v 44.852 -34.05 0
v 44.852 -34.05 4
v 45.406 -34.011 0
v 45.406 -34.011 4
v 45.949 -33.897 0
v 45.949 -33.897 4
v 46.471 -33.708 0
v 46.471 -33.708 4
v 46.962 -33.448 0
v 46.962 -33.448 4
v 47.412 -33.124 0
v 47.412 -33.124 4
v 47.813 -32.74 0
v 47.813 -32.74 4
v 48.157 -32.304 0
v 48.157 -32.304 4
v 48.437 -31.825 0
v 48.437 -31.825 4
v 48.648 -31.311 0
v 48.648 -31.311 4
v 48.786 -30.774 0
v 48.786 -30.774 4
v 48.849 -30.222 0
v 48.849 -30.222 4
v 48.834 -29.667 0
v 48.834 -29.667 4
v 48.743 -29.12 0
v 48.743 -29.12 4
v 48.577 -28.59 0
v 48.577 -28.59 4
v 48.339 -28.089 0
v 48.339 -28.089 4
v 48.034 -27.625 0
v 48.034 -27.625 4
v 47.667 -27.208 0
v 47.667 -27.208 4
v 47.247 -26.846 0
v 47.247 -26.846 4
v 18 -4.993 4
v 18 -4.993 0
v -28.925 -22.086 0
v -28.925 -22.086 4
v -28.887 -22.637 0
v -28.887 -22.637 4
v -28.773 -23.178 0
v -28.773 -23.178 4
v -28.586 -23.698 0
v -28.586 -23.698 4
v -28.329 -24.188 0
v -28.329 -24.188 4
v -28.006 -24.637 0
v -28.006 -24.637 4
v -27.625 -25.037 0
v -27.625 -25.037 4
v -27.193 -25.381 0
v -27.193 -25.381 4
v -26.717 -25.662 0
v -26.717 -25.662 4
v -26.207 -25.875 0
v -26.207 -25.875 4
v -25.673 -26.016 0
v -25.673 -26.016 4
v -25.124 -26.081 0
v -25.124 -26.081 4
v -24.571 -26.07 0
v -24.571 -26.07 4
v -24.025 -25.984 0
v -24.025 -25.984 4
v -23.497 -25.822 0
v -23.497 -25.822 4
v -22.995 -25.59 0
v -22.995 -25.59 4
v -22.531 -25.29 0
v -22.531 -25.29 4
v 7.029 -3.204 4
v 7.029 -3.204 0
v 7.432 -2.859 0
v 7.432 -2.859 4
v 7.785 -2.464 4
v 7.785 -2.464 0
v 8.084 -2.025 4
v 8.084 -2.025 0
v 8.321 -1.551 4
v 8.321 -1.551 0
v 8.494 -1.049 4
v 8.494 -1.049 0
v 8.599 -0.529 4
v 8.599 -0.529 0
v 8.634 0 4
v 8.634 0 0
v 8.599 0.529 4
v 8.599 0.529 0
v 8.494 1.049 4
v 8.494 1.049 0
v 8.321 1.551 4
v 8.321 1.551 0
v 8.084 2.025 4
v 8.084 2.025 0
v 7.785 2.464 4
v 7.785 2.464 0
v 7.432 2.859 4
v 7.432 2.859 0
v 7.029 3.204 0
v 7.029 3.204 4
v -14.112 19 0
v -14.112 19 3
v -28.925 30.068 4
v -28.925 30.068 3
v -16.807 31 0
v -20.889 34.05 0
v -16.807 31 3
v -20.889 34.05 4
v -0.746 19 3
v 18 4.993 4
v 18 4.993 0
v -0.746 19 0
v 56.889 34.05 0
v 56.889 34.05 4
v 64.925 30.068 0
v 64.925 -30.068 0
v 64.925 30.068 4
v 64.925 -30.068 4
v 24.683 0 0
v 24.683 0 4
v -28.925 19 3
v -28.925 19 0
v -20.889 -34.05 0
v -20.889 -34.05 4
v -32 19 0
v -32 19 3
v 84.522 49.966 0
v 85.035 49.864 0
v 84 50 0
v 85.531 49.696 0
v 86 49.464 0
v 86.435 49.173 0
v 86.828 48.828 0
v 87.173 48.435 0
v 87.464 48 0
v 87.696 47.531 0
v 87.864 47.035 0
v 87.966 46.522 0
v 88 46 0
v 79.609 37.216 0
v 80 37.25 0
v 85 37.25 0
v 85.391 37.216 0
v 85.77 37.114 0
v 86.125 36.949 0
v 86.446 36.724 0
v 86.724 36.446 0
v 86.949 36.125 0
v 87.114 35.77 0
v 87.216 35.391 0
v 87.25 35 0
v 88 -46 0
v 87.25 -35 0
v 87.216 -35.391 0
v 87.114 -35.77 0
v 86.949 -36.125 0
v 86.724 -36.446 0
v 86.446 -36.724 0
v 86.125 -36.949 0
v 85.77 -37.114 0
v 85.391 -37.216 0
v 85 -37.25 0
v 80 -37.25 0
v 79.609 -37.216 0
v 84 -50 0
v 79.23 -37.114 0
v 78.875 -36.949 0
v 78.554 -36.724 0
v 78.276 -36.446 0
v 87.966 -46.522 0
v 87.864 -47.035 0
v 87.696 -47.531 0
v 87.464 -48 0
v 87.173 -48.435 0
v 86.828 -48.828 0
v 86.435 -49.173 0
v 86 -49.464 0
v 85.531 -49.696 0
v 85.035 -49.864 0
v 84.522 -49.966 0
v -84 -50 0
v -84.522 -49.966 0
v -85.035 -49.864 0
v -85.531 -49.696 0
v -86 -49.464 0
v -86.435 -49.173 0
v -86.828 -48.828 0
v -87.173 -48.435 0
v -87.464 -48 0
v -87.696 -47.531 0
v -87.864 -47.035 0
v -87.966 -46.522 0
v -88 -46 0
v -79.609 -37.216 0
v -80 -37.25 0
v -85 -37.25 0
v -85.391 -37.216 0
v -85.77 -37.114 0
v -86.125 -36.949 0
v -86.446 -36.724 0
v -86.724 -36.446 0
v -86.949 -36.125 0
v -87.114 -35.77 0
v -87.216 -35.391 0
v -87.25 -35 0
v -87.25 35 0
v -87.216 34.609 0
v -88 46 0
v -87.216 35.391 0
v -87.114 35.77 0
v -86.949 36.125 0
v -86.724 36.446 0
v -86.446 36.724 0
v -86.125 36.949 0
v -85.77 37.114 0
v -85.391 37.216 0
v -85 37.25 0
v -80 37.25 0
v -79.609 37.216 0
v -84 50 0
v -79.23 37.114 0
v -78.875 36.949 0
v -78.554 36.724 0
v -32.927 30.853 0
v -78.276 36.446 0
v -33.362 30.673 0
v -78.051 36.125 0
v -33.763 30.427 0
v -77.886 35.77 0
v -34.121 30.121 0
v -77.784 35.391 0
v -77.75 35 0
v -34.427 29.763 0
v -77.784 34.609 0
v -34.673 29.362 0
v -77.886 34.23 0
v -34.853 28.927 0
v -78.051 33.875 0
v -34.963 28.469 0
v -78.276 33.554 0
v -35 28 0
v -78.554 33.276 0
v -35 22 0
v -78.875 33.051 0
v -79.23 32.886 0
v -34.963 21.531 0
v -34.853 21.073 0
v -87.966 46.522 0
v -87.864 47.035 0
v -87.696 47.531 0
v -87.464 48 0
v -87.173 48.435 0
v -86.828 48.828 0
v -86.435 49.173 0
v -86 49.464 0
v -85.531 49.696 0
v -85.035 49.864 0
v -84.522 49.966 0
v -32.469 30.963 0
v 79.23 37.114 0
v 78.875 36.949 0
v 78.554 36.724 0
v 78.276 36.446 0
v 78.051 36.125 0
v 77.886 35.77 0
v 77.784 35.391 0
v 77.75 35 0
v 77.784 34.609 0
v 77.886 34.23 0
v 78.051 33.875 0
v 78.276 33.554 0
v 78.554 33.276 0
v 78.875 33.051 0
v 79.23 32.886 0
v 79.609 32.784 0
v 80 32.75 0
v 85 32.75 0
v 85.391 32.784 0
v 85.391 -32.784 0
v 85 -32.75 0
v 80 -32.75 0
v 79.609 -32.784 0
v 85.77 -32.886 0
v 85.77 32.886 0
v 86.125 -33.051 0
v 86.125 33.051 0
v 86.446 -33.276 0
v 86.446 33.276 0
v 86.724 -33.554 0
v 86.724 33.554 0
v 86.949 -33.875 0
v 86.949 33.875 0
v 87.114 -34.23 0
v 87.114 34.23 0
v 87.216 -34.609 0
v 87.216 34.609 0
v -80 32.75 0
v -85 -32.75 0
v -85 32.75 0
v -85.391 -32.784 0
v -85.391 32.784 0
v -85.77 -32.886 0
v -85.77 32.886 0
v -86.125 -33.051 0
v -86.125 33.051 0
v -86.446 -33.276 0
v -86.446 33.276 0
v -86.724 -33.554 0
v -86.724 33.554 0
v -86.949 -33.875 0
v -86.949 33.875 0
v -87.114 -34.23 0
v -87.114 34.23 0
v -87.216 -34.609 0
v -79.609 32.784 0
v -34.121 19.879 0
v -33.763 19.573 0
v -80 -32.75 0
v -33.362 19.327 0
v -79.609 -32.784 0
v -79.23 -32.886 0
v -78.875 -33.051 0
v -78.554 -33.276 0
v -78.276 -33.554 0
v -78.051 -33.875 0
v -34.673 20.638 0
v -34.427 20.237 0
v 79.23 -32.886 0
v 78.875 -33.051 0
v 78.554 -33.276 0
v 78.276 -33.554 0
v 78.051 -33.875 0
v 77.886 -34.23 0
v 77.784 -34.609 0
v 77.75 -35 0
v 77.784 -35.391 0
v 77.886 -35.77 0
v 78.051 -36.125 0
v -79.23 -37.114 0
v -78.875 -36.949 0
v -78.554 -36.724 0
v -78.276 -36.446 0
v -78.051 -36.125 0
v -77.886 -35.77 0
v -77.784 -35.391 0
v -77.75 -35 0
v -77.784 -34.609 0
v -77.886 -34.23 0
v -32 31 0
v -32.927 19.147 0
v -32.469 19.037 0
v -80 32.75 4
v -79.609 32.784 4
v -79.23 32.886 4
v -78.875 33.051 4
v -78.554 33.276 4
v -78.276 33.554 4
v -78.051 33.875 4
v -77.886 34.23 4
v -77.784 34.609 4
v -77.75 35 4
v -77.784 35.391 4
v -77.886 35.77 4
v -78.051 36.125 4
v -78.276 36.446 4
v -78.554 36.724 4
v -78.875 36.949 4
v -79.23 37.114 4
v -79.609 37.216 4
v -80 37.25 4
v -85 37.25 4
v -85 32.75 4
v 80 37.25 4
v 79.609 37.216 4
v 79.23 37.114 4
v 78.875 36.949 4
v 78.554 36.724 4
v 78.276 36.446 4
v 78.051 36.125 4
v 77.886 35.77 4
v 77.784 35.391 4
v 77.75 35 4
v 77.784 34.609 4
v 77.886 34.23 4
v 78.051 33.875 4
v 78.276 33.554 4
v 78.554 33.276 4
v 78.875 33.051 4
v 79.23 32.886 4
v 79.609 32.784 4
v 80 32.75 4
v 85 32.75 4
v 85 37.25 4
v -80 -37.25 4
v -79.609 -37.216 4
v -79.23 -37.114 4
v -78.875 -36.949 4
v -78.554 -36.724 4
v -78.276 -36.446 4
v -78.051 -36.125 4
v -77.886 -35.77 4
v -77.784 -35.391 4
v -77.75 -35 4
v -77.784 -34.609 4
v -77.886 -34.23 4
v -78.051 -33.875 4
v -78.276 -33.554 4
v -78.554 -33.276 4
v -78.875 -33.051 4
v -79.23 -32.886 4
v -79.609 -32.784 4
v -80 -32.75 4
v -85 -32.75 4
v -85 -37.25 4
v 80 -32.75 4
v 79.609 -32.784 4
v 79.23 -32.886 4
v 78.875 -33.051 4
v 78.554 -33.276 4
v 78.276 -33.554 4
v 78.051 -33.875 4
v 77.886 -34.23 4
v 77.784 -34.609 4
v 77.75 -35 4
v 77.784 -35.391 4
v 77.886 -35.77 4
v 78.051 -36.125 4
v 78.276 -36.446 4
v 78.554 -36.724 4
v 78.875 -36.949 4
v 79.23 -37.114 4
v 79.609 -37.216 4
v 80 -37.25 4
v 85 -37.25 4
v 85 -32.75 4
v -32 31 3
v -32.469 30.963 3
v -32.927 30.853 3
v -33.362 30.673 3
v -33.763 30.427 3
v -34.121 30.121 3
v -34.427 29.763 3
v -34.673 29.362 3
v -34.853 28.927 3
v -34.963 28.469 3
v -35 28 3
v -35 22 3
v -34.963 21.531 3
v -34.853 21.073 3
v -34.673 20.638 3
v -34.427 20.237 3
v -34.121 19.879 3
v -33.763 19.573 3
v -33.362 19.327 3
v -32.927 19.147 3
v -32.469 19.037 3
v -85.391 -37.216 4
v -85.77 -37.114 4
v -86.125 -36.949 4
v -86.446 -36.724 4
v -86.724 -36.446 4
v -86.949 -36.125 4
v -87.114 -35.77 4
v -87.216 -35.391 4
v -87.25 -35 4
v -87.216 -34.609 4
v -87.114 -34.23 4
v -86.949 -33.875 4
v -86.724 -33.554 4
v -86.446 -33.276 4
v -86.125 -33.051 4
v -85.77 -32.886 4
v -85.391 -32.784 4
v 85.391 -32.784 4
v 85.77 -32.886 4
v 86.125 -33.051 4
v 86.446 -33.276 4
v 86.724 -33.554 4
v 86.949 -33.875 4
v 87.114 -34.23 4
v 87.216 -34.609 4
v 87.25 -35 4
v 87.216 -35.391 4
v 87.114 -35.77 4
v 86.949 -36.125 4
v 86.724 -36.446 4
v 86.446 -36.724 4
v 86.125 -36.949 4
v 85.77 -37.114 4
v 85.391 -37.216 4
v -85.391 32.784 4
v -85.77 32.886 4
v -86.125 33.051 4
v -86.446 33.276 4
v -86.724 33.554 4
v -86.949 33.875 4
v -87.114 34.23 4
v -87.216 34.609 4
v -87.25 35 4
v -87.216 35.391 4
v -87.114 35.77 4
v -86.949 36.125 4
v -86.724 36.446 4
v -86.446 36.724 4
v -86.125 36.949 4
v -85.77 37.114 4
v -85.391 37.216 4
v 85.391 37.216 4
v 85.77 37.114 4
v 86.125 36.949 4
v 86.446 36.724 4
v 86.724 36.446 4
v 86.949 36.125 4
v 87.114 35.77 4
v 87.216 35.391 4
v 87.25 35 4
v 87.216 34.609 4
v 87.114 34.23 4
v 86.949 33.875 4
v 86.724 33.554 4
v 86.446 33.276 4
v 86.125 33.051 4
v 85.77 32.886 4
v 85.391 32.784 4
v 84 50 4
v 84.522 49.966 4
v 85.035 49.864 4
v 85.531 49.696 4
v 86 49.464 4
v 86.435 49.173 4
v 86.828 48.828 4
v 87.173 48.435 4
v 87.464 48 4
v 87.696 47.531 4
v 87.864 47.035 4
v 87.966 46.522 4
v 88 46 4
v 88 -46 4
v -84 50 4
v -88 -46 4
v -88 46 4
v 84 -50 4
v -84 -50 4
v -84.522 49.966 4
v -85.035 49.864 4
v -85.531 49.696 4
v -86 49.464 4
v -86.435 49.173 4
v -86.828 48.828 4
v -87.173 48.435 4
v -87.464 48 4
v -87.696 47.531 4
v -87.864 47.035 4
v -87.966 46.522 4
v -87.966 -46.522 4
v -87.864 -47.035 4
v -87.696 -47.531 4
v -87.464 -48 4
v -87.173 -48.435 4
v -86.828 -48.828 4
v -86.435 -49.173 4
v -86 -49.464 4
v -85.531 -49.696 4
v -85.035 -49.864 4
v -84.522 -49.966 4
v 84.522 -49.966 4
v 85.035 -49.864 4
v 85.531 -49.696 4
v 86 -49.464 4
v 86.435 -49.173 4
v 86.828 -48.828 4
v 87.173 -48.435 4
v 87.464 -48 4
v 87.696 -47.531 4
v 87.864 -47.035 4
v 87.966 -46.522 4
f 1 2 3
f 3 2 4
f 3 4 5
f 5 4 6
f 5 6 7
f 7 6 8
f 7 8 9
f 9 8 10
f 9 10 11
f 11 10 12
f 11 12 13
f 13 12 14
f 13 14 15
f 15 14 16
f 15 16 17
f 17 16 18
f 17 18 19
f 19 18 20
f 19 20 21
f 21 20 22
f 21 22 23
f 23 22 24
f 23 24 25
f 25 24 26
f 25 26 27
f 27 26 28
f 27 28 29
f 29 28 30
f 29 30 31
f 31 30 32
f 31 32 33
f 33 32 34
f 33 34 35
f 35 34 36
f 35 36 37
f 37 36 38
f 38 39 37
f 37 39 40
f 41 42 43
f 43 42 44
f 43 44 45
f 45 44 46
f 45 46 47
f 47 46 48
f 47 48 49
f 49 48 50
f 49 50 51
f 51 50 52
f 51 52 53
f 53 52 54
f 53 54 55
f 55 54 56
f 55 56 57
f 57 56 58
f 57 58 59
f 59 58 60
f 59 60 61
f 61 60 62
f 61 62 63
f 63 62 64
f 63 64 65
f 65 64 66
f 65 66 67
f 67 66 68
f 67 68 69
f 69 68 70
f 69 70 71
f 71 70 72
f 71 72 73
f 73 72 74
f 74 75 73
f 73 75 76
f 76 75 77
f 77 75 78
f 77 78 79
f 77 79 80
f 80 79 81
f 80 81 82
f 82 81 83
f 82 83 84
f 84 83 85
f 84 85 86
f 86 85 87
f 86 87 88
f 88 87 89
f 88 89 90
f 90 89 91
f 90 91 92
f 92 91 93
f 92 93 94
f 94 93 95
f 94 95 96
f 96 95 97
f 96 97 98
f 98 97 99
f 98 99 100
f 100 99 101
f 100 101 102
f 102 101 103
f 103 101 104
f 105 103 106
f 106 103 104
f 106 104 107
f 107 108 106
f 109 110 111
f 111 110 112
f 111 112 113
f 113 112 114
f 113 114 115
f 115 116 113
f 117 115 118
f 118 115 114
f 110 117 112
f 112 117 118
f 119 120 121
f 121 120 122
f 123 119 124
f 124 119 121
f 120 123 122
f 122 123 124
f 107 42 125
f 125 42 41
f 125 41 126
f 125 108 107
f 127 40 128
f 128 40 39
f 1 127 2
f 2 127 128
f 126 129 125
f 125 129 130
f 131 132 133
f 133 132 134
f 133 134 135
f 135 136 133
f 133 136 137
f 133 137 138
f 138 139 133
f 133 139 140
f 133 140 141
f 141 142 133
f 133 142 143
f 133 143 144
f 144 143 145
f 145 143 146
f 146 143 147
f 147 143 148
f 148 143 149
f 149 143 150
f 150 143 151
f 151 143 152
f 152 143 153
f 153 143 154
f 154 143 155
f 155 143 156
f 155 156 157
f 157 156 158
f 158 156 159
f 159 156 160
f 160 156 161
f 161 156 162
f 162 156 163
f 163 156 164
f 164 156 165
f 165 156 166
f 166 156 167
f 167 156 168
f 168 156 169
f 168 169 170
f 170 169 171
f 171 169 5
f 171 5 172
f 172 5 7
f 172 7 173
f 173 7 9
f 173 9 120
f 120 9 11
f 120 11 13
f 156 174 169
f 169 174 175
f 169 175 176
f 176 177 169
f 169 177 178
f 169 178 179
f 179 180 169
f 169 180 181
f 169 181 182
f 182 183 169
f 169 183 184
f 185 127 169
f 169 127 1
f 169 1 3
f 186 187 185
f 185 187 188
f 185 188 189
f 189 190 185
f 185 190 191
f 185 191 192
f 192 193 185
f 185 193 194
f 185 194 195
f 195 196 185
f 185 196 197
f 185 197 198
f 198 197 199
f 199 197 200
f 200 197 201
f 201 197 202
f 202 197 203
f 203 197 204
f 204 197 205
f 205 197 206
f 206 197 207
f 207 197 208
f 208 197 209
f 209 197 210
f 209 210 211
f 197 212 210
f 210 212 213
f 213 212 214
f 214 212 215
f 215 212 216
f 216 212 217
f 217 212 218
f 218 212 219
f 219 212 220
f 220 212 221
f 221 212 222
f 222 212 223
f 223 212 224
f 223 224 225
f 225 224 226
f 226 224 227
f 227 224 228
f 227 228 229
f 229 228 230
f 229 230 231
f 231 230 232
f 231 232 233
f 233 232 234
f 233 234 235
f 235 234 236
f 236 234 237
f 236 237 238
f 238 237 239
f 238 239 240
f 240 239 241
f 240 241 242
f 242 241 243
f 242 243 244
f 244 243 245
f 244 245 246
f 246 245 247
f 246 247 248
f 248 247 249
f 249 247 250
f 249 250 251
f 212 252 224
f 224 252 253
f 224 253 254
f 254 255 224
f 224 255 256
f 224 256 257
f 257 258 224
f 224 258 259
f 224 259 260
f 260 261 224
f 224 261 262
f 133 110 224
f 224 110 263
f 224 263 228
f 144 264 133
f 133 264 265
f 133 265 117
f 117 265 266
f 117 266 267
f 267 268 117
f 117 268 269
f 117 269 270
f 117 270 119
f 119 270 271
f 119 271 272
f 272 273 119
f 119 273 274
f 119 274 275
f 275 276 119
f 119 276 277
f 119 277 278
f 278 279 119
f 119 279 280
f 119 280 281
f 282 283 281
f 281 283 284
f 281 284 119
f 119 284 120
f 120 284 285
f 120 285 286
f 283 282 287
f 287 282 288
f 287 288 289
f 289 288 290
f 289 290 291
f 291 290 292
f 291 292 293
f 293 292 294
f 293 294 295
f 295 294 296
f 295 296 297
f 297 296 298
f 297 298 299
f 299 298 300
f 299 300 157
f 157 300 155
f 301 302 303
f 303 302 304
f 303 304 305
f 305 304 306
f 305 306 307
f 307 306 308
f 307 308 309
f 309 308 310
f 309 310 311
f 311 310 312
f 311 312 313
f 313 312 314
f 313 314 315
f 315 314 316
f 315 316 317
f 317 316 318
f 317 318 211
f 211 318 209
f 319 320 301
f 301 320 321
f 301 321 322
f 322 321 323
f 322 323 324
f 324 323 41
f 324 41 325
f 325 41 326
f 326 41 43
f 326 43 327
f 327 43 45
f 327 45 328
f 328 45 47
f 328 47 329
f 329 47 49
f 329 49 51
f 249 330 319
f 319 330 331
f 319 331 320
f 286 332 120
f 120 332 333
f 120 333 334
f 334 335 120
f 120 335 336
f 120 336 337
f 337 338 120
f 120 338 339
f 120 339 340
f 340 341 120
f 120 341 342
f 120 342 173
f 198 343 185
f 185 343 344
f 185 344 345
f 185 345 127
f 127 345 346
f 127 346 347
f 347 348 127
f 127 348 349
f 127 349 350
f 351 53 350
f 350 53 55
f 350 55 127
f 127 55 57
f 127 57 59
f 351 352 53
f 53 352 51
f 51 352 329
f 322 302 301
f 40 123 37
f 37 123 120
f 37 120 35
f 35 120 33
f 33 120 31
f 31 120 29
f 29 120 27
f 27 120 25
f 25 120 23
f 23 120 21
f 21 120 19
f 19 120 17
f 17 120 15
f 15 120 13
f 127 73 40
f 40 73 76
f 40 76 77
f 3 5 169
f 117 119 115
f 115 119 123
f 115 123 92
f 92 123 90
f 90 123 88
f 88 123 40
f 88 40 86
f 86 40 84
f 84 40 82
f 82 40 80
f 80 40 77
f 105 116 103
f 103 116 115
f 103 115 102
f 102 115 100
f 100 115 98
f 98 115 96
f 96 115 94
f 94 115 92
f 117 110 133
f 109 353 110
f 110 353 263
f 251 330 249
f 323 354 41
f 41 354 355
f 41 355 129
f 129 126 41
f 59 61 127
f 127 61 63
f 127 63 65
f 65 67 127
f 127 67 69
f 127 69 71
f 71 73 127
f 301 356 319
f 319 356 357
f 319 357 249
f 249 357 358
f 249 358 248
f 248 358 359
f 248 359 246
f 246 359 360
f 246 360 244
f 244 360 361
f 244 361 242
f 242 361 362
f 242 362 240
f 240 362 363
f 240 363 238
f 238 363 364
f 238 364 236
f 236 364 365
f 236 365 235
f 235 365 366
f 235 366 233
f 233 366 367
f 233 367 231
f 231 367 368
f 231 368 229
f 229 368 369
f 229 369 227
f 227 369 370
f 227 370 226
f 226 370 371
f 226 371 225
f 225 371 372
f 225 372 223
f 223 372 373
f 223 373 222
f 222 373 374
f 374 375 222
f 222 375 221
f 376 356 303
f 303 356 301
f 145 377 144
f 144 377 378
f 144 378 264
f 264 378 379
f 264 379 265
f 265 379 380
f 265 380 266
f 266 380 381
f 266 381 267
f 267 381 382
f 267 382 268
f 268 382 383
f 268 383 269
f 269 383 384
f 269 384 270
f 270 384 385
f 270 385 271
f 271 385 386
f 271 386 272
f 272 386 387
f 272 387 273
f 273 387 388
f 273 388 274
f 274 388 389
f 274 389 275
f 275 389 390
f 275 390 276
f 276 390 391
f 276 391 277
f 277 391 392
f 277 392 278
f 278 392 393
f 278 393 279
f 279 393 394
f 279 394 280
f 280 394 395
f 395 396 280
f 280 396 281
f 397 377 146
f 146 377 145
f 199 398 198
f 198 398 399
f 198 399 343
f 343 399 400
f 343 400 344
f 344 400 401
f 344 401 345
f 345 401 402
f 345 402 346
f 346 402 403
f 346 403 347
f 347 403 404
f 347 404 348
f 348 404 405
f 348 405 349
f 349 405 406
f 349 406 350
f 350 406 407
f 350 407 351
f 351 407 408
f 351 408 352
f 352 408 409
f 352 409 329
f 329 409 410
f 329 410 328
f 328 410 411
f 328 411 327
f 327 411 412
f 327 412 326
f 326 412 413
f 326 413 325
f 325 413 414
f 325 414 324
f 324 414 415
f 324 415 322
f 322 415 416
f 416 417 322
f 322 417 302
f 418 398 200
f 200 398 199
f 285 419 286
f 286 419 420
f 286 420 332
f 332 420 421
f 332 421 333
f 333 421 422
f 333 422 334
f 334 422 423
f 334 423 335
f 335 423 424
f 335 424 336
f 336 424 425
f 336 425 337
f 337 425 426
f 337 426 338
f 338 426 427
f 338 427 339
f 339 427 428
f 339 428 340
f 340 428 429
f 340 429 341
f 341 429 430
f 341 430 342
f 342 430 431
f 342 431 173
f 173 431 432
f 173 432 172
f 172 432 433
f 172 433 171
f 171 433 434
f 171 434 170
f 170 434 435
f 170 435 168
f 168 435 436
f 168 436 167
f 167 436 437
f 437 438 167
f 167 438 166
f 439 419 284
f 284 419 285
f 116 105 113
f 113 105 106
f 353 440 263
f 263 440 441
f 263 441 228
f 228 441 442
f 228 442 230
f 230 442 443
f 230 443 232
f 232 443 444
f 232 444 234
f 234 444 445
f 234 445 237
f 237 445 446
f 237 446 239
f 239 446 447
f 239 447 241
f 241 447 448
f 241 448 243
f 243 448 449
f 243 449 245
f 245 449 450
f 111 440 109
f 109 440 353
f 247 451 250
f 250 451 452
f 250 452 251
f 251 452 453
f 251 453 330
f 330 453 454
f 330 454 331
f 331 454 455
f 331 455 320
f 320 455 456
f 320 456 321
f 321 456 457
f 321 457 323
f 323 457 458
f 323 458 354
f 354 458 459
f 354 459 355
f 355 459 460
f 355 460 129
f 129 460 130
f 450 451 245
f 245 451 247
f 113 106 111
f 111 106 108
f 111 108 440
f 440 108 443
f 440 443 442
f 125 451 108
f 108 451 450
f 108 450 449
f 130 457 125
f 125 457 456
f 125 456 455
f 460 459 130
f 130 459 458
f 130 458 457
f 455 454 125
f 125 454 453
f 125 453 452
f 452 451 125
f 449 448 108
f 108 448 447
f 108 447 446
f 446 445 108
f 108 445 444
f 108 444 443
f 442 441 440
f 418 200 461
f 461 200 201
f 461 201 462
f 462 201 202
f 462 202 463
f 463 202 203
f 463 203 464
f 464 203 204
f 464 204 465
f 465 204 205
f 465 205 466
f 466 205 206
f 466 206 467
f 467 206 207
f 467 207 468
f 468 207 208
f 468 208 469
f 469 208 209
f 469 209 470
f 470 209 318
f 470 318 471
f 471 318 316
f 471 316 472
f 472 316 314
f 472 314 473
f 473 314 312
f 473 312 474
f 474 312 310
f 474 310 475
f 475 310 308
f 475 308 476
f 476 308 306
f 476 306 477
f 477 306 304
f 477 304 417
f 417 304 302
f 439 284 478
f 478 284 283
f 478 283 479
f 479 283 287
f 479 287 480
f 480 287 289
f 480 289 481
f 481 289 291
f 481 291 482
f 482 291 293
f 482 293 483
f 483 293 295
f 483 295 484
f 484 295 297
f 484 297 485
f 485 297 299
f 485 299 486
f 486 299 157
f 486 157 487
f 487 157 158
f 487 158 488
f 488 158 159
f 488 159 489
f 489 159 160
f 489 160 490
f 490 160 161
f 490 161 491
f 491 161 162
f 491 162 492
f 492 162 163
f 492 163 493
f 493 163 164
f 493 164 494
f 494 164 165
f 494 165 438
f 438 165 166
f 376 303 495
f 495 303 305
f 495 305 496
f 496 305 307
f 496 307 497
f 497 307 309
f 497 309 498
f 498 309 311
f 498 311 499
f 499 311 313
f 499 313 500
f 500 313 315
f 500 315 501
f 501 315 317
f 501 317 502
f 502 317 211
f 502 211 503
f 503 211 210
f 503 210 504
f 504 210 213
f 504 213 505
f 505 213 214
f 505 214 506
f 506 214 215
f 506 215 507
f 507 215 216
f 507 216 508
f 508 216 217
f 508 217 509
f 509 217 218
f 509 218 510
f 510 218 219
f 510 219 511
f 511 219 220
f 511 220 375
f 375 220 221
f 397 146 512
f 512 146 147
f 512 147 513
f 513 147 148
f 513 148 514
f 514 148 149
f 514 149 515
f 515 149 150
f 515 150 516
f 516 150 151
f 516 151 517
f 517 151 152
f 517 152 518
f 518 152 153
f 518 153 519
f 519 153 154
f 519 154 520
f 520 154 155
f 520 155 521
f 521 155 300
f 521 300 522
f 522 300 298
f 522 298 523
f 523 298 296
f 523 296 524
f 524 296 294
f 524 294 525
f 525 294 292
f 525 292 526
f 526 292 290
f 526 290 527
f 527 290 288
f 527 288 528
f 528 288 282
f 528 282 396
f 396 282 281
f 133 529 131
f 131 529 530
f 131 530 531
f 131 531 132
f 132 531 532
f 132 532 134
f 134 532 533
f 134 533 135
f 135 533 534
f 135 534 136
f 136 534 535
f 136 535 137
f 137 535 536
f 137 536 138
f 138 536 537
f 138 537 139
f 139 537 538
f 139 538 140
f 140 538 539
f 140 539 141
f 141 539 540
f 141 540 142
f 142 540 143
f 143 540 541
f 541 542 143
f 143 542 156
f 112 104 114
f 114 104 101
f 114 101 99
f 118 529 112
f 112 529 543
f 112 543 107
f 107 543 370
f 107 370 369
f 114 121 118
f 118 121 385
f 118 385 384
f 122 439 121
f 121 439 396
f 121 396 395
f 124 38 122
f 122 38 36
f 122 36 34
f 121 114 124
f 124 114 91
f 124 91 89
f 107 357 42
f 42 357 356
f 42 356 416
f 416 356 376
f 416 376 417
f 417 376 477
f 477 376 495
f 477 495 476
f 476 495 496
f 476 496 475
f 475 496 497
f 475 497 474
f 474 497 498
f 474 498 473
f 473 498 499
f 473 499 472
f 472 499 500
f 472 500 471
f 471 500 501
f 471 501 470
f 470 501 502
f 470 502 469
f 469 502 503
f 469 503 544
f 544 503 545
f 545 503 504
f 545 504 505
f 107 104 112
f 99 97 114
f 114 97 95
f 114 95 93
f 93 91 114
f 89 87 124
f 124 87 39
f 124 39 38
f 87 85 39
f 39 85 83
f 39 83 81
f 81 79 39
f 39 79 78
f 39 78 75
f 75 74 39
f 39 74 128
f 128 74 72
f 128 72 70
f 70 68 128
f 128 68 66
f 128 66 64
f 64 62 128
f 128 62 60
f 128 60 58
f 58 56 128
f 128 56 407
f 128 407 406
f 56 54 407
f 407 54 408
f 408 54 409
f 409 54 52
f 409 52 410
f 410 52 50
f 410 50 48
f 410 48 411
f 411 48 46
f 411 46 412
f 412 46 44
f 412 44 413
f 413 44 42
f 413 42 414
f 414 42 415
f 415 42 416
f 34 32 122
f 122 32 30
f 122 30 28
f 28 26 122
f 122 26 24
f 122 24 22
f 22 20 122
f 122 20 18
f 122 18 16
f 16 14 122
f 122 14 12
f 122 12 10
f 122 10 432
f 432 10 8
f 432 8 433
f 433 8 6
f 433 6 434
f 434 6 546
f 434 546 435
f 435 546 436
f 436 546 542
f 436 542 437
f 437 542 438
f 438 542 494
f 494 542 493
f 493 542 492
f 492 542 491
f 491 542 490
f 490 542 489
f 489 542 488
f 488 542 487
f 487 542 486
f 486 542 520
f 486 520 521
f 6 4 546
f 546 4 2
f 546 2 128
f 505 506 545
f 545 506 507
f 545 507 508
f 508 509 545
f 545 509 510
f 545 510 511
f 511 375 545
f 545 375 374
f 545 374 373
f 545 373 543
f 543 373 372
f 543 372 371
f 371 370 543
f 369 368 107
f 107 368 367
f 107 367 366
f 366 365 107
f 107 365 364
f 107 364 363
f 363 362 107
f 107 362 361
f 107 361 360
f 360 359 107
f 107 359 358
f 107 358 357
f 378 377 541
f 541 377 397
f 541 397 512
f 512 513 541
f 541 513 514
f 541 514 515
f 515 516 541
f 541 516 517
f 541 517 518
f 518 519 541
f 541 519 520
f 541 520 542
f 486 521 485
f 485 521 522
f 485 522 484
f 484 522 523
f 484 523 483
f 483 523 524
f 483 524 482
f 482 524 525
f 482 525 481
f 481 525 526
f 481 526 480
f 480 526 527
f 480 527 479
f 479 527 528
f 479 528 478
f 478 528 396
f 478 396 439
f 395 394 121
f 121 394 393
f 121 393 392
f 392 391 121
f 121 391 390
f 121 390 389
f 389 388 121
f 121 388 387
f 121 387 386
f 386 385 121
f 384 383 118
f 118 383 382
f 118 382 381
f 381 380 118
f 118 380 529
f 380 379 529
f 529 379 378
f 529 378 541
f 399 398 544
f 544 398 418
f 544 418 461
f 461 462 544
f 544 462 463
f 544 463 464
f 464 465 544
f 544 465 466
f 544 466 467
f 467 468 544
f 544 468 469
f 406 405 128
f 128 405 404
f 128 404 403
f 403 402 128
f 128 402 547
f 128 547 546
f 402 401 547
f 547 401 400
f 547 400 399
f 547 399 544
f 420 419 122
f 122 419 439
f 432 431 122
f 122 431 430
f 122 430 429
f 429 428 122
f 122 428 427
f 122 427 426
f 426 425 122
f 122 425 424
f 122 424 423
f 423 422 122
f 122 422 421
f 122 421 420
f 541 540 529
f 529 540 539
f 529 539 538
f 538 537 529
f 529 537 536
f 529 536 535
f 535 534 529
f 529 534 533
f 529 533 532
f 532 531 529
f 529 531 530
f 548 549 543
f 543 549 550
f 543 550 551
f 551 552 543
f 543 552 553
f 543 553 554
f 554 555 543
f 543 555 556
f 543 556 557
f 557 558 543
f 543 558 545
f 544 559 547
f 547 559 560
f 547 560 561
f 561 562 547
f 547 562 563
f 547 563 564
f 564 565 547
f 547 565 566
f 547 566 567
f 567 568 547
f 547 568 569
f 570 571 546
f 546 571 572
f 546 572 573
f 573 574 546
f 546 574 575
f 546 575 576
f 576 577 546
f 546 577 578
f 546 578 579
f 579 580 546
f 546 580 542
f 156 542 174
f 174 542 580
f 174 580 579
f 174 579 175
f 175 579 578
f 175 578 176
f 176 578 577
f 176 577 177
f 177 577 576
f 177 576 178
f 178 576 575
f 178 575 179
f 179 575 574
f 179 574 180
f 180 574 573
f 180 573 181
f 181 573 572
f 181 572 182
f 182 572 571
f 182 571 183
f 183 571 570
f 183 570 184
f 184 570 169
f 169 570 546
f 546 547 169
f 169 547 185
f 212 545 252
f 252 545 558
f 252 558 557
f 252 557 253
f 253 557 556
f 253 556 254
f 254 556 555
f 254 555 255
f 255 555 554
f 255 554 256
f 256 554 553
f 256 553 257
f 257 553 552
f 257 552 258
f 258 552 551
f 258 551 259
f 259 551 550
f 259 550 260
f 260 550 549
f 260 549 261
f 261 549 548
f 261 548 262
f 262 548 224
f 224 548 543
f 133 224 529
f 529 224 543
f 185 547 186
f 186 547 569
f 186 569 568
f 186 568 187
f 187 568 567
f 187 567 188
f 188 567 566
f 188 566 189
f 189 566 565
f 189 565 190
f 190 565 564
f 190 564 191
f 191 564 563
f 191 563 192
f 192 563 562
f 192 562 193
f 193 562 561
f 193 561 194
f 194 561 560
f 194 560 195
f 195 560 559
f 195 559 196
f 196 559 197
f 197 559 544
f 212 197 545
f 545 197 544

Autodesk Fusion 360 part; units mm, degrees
sketch "Sketch5" plane through (0, 0, 4) normal (0, 0, 1) x (-1, 0, 0)
  arc A0 (84, -50) -> (88, -46) centre (84, -46) ccw
  line L0 (88, -46) -> (88, 46)
  arc A1 (88, 46) -> (84, 50) centre (84, 46) ccw
  line L1 (84, 50) -> (-84, 50)
  arc A2 (-84, 50) -> (-88, 46) centre (-84, 46) ccw
  line L2 (-88, 46) -> (-88, -46)
  arc A3 (-88, -46) -> (-84, -50) centre (-84, -46) ccw
  line L3 (-84, -50) -> (84, -50)
  circle A4 centre (69, -43.25) radius 1.425
  circle A5 centre (-69, -43.25) radius 7.5
  circle A6 centre (69, 43.25) radius 7.5
  circle A7 centre (-69, 43.25) radius 7.5
  circle A8 centre (69, -43.25) radius 3.5
  circle A9 centre (-69, -43.25) radius 2.5
  circle A10 centre (-69, 43.25) radius 2.5
  circle A11 centre (69, 43.25) radius 2.5
  line L4 (69, -43.25) -> (-69, -43.25) construction
  line L5 (69, -43.25) -> (69, 43.25) construction
  line L6 (85, -50) -> (85, -42.0241)
  line L7 (85, -42.0241) -> (85, 50) construction
  line L8 (-85, -50) -> (-85, 50) construction
  line L9 (0, -50) -> (0, 50) construction
  circle A12 centre (85, -35) radius 2.25
  circle A13 centre (85, 35) radius 1.425
  circle A14 centre (-85, -35) radius 1.425
  circle A15 centre (-85, 35) radius 1.425
  line L10 (88, 0) -> (-88, 0) construction
  line L11 (85, -35) -> (-85, -35) construction
  line L12 (85, 35) -> (-85, 35) construction
  line L13 (85, -32.75) -> (80, -32.75)
  arc A16 (80, -32.75) -> (80, -37.25) centre (80, -35) ccw
  line L14 (80, -37.25) -> (85, -37.25)
  arc A17 (85, -37.25) -> (85, -32.75) centre (85, -35) ccw
  line L15 (85, -35) -> (80, -35) construction
  line L16 (85, 37.25) -> (80, 37.25)
  arc A18 (80, 37.25) -> (80, 32.75) centre (80, 35) ccw
  line L17 (80, 32.75) -> (85, 32.75)
  arc A19 (85, 32.75) -> (85, 37.25) centre (85, 35) ccw
  line L18 (85, 35) -> (80, 35) construction
  line L19 (-85, -37.25) -> (-80, -37.25)
  arc A20 (-80, -37.25) -> (-80, -32.75) centre (-80, -35) ccw
  line L20 (-80, -32.75) -> (-85, -32.75)
  arc A21 (-85, -32.75) -> (-85, -37.25) centre (-85, -35) ccw
  line L21 (-85, -35) -> (-80, -35) construction
  line L22 (-85, 32.75) -> (-80, 32.75)
  arc A22 (-80, 32.75) -> (-80, 37.25) centre (-80, 35) ccw
  line L23 (-80, 37.25) -> (-85, 37.25)
  arc A23 (-85, 37.25) -> (-85, 32.75) centre (-85, 35) ccw
  line L24 (-85, 35) -> (-80, 35) construction
  point P0 (0, -43.25)
  point P1 (69, 0)
  dimension "d1" = 2.85
  dimension "d2" = 15
  dimension "d3" = 15
  dimension "d4" = 15
  dimension "d5" = 7
  dimension "d6" = 5
  dimension "d7" = 5
  dimension "d8" = 5
  dimension "d9" = 138
  dimension "d10" = 86.5
  dimension "d11" = 4.5
  dimension "d12" = 2.85
  dimension "d13" = 2.85
  dimension "d14" = 2.85
  dimension "d15" = 70
  dimension "d16" = 15
  dimension "d17" = 170
  dimension "d18" = 4.5
  dimension "d19" = 4.5
  dimension "d20" = 5
  dimension "d21" = 4.5
  dimension "d22" = 5
  dimension "d23" = 4.5
sketch "Sketch6" plane through (0, 0, 4) normal (0, 0, 1) x (-1, 0, 0)
  circle A0 centre (85, 35) radius 2.25
  circle A1 centre (-85, 35) radius 2.25
  circle A2 centre (85, -35) radius 2.25
  circle A3 centre (-85, -35) radius 2.25
  arc A4 (-88, -46) -> (-84, -50) centre (-84, -46) ccw
  line L0 (-84, -50) -> (84, -50)
  arc A5 (84, -50) -> (88, -46) centre (84, -46) ccw
  line L1 (88, -46) -> (88, 46)
  arc A6 (88, 46) -> (84, 50) centre (84, 46) ccw
  line L2 (84, 50) -> (-84, 50)
  arc A7 (-84, 50) -> (-88, 46) centre (-84, 46) ccw
  line L3 (-88, 46) -> (-88, -46)
  line L4 (32.925, -38.05) -> (-68.925, -38.05) construction
  line L5 (-68.925, -38.05) -> (-68.925, 38.05) construction
  line L6 (-68.925, 38.05) -> (32.925, 38.05) construction
  line L7 (32.925, 38.05) -> (32.925, -38.05) construction
  circle A8 centre (32.925, -38.05) radius 1.425
  circle A9 centre (32.925, -38.05) radius 3
  circle A10 centre (-68.925, -38.05) radius 1.425
  circle A11 centre (-68.925, -38.05) radius 3
  circle A12 centre (32.925, 38.05) radius 1.425
  circle A13 centre (32.925, 38.05) radius 3
  circle A14 centre (-68.925, 38.05) radius 1.425
  circle A15 centre (-68.925, 38.05) radius 3
  line L8 (22.8962, -40.5575) -> (-22.2991, -40.5575) construction
  line L9 (-22.2991, -40.5575) -> (-22.2991, -50.5575) construction
  line L10 (-22.2991, -50.5575) -> (22.8962, -50.5575) construction
  line L11 (22.8962, -50.5575) -> (22.8962, -40.5575) construction
  line L12 (32.925, -38.05) -> (-68.925, 38.05) construction
  line L13 (-68.925, -38.05) -> (32.925, 38.05) construction
  line L14 (28.925, -30.0681) -> (28.925, 30.0681)
  line L15 (28.925, 30.0681) -> (-11.3172, 0)
  line L16 (-11.3172, 0) -> (28.925, -30.0681)
  line L17 (20.8887, -34.05) -> (-18, -4.9932)
  line L18 (-18, -4.9932) -> (-56.8887, -34.05)
  line L19 (-56.8887, -34.05) -> (20.8887, -34.05)
  line L20 (-64.925, -30.0681) -> (-24.6828, 0)
  line L21 (-24.6828, 0) -> (-64.925, 30.0681)
  line L22 (-64.925, 30.0681) -> (-64.925, -30.0681)
  line L23 (-18, 4.9932) -> (20.8887, 34.05)
  line L24 (20.8887, 34.05) -> (-56.8887, 34.05)
  line L25 (-56.8887, 34.05) -> (-18, 4.9932)
  point P0 (32.925, 0)
  point P1 (0, -38.05)
  point P2 (0, -50)
  point P3 (-18, -38.05)
  dimension "d24" = 101.85
  dimension "d25" = 76.1
  dimension "d26" = 2.85
  dimension "d27" = 2.85
  dimension "d28" = 2.85
  dimension "d29" = 2.85
  dimension "d30" = 6
  dimension "d31" = 6
  dimension "d32" = 6
  dimension "d33" = 6
  dimension "d34" = 4
  dimension "d35" = 4
  dimension "d36" = 4
  dimension "d37" = 4
  dimension "d38" = 4
  dimension "d39" = 4
  dimension "d40" = 4
  dimension "d41" = 4
  dimension "d42" = 70
  dimension "d43" = 88
sketch "Sketch1" plane through (0, 0, 0) normal (0, 0, 1) x (1, 0, 0)
  line L0 (-88, 50) -> (88, 50)
  line L1 (88, 50) -> (88, -50)
  line L2 (88, -50) -> (-88, -50)
  line L3 (-88, -50) -> (-88, 50)
  point P0 (0, 50)
  point P1 (-88, 0)
  dimension "d57" = 176
  dimension "d58" = 100
extrude "Extrude1" add sketch "Sketch1" along normal blind 4
fillet "Fillet2" radius 4 4 edges at (-88, -50, 2) (-88, 50, 2) (88, -50, 2) (88, 50, 2)
extrude "Extrude5" cut sketch "Sketch5" against normal through all contours A12 A17 | A13 | A14 | A15
sketch "Sketch3" plane through (0, 0, 0) normal (0, 0, -1) x (1, 0, 0)
  arc A0 (84, -50) -> (88, -46) centre (84, -46) ccw
  line L0 (88, -46) -> (88, 46)
  arc A1 (88, 46) -> (84, 50) centre (84, 46) ccw
  line L1 (84, 50) -> (-84, 50)
  arc A2 (-84, 50) -> (-88, 46) centre (-84, 46) ccw
  line L2 (-88, 46) -> (-88, -46)
  arc A3 (-88, -46) -> (-84, -50) centre (-84, -46) ccw
  line L3 (-84, -50) -> (84, -50)
  line L4 (-35, -19) -> (35, -19)
  line L5 (35, -19) -> (35, -31)
  line L6 (35, -31) -> (-35, -31)
  line L7 (-35, -31) -> (-35, -19)
  circle A4 centre (-85, 35) radius 1.425
  circle A5 centre (85, 35) radius 1.425
  circle A6 centre (-85, -35) radius 2.25
  circle A7 centre (85, -35) radius 1.425
  line L8 (85, -35) -> (-85, -35) construction
  point P0 (0, -19)
  point P1 (35, -25)
  dimension "d86" = 70
  dimension "d87" = 12
  dimension "d129" = 4
extrude "Extrude4" cut sketch "Sketch3" against normal blind 3 contours L4 L5 L6 L7
fillet "Fillet3" radius 3 4 edges at (-35, 19, 1.5) (-35, 31, 1.5) (35, 31, 1.5) (35, 19, 1.5)
sketch "Sketch4" plane through (1.194, -0.2204, 4) normal (0, 0, 1) x (-1, 0, 0)
  circle A0 centre (86.194, 34.7796) radius 1.425
  circle A1 centre (-83.806, 34.7796) radius 1.425
  circle A2 centre (86.194, -35.2204) radius 2.25
  circle A3 centre (-83.806, -35.2204) radius 1.425
  arc A4 (-86.806, -46.2204) -> (-82.806, -50.2204) centre (-82.806, -46.2204) ccw
  line L0 (-82.806, -50.2204) -> (85.194, -50.2204)
  arc A5 (85.194, -50.2204) -> (89.194, -46.2204) centre (85.194, -46.2204) ccw
  line L1 (89.194, -46.2204) -> (89.194, 45.7796)
  arc A6 (89.194, 45.7796) -> (85.194, 49.7796) centre (85.194, 45.7796) ccw
  line L2 (85.194, 49.7796) -> (-82.806, 49.7796)
  arc A7 (-82.806, 49.7796) -> (-86.806, 45.7796) centre (-82.806, 45.7796) ccw
  line L3 (-86.806, 45.7796) -> (-86.806, -46.2204)
  line L4 (86.194, -32.9704) -> (81.194, -32.9704)
  arc A8 (81.194, -32.9704) -> (81.194, -37.4704) centre (81.194, -35.2204) ccw
  line L5 (81.194, -37.4704) -> (86.194, -37.4704)
  arc A9 (86.194, -37.4704) -> (86.194, -32.9704) centre (86.194, -35.2204) ccw
  line L6 (86.194, -35.2204) -> (81.194, -35.2204) construction
  line L7 (86.194, 37.0296) -> (81.194, 37.0296)
  arc A10 (81.194, 37.0296) -> (81.194, 32.5296) centre (81.194, 34.7796) ccw
  line L8 (81.194, 32.5296) -> (86.194, 32.5296)
  arc A11 (86.194, 32.5296) -> (86.194, 37.0296) centre (86.194, 34.7796) ccw
  line L9 (86.194, 34.7796) -> (81.194, 34.7796) construction
  line L10 (-83.806, -37.4704) -> (-78.806, -37.4704)
  arc A12 (-78.806, -37.4704) -> (-78.806, -32.9704) centre (-78.806, -35.2204) ccw
  line L11 (-78.806, -32.9704) -> (-83.806, -32.9704)
  arc A13 (-83.806, -32.9704) -> (-83.806, -37.4704) centre (-83.806, -35.2204) ccw
  line L12 (-83.806, -35.2204) -> (-78.806, -35.2204) construction
  line L13 (-83.806, 32.5296) -> (-78.806, 32.5296)
  arc A14 (-78.806, 32.5296) -> (-78.806, 37.0296) centre (-78.806, 34.7796) ccw
  line L14 (-78.806, 37.0296) -> (-83.806, 37.0296)
  arc A15 (-83.806, 37.0296) -> (-83.806, 32.5296) centre (-83.806, 34.7796) ccw
  line L15 (-83.806, 34.7796) -> (-78.806, 34.7796) construction
  dimension "d292" = 4.5
  dimension "d293" = 170
  dimension "d294" = 5
  dimension "d295" = 4.5
  dimension "d296" = 4.5
  dimension "d297" = 4.5
  dimension "d298" = 5
extrude "Extrude7" cut sketch "Sketch4" against normal blind 4 contours A2 L4 A8 L5 | L7 A10 L8 A11 | L10 A12 L11 A13 | L13 A14 L14 A15
extrude "Extrude6" cut sketch "Sketch6" against normal through all contours L14 L15 L16 | L17 L18 L19 | L20 L21 L22 | L23 L24 L25
fillet "Fillet4" radius 4 2 edges at (11.3172, 0, 2) (-28.925, -30.0681, 2)
fillet "Fillet5" radius 4 1 edges at (56.8887, -34.05, 2)
equation "d2 = d16"
equation "d3 = d16"
equation "d4 = d16"
equation "d6 = d20"
equation "d7 = d20"
equation "d8 = d20"
equation "d12 = d29"
equation "d13 = d29"
equation "d14 = d29"
